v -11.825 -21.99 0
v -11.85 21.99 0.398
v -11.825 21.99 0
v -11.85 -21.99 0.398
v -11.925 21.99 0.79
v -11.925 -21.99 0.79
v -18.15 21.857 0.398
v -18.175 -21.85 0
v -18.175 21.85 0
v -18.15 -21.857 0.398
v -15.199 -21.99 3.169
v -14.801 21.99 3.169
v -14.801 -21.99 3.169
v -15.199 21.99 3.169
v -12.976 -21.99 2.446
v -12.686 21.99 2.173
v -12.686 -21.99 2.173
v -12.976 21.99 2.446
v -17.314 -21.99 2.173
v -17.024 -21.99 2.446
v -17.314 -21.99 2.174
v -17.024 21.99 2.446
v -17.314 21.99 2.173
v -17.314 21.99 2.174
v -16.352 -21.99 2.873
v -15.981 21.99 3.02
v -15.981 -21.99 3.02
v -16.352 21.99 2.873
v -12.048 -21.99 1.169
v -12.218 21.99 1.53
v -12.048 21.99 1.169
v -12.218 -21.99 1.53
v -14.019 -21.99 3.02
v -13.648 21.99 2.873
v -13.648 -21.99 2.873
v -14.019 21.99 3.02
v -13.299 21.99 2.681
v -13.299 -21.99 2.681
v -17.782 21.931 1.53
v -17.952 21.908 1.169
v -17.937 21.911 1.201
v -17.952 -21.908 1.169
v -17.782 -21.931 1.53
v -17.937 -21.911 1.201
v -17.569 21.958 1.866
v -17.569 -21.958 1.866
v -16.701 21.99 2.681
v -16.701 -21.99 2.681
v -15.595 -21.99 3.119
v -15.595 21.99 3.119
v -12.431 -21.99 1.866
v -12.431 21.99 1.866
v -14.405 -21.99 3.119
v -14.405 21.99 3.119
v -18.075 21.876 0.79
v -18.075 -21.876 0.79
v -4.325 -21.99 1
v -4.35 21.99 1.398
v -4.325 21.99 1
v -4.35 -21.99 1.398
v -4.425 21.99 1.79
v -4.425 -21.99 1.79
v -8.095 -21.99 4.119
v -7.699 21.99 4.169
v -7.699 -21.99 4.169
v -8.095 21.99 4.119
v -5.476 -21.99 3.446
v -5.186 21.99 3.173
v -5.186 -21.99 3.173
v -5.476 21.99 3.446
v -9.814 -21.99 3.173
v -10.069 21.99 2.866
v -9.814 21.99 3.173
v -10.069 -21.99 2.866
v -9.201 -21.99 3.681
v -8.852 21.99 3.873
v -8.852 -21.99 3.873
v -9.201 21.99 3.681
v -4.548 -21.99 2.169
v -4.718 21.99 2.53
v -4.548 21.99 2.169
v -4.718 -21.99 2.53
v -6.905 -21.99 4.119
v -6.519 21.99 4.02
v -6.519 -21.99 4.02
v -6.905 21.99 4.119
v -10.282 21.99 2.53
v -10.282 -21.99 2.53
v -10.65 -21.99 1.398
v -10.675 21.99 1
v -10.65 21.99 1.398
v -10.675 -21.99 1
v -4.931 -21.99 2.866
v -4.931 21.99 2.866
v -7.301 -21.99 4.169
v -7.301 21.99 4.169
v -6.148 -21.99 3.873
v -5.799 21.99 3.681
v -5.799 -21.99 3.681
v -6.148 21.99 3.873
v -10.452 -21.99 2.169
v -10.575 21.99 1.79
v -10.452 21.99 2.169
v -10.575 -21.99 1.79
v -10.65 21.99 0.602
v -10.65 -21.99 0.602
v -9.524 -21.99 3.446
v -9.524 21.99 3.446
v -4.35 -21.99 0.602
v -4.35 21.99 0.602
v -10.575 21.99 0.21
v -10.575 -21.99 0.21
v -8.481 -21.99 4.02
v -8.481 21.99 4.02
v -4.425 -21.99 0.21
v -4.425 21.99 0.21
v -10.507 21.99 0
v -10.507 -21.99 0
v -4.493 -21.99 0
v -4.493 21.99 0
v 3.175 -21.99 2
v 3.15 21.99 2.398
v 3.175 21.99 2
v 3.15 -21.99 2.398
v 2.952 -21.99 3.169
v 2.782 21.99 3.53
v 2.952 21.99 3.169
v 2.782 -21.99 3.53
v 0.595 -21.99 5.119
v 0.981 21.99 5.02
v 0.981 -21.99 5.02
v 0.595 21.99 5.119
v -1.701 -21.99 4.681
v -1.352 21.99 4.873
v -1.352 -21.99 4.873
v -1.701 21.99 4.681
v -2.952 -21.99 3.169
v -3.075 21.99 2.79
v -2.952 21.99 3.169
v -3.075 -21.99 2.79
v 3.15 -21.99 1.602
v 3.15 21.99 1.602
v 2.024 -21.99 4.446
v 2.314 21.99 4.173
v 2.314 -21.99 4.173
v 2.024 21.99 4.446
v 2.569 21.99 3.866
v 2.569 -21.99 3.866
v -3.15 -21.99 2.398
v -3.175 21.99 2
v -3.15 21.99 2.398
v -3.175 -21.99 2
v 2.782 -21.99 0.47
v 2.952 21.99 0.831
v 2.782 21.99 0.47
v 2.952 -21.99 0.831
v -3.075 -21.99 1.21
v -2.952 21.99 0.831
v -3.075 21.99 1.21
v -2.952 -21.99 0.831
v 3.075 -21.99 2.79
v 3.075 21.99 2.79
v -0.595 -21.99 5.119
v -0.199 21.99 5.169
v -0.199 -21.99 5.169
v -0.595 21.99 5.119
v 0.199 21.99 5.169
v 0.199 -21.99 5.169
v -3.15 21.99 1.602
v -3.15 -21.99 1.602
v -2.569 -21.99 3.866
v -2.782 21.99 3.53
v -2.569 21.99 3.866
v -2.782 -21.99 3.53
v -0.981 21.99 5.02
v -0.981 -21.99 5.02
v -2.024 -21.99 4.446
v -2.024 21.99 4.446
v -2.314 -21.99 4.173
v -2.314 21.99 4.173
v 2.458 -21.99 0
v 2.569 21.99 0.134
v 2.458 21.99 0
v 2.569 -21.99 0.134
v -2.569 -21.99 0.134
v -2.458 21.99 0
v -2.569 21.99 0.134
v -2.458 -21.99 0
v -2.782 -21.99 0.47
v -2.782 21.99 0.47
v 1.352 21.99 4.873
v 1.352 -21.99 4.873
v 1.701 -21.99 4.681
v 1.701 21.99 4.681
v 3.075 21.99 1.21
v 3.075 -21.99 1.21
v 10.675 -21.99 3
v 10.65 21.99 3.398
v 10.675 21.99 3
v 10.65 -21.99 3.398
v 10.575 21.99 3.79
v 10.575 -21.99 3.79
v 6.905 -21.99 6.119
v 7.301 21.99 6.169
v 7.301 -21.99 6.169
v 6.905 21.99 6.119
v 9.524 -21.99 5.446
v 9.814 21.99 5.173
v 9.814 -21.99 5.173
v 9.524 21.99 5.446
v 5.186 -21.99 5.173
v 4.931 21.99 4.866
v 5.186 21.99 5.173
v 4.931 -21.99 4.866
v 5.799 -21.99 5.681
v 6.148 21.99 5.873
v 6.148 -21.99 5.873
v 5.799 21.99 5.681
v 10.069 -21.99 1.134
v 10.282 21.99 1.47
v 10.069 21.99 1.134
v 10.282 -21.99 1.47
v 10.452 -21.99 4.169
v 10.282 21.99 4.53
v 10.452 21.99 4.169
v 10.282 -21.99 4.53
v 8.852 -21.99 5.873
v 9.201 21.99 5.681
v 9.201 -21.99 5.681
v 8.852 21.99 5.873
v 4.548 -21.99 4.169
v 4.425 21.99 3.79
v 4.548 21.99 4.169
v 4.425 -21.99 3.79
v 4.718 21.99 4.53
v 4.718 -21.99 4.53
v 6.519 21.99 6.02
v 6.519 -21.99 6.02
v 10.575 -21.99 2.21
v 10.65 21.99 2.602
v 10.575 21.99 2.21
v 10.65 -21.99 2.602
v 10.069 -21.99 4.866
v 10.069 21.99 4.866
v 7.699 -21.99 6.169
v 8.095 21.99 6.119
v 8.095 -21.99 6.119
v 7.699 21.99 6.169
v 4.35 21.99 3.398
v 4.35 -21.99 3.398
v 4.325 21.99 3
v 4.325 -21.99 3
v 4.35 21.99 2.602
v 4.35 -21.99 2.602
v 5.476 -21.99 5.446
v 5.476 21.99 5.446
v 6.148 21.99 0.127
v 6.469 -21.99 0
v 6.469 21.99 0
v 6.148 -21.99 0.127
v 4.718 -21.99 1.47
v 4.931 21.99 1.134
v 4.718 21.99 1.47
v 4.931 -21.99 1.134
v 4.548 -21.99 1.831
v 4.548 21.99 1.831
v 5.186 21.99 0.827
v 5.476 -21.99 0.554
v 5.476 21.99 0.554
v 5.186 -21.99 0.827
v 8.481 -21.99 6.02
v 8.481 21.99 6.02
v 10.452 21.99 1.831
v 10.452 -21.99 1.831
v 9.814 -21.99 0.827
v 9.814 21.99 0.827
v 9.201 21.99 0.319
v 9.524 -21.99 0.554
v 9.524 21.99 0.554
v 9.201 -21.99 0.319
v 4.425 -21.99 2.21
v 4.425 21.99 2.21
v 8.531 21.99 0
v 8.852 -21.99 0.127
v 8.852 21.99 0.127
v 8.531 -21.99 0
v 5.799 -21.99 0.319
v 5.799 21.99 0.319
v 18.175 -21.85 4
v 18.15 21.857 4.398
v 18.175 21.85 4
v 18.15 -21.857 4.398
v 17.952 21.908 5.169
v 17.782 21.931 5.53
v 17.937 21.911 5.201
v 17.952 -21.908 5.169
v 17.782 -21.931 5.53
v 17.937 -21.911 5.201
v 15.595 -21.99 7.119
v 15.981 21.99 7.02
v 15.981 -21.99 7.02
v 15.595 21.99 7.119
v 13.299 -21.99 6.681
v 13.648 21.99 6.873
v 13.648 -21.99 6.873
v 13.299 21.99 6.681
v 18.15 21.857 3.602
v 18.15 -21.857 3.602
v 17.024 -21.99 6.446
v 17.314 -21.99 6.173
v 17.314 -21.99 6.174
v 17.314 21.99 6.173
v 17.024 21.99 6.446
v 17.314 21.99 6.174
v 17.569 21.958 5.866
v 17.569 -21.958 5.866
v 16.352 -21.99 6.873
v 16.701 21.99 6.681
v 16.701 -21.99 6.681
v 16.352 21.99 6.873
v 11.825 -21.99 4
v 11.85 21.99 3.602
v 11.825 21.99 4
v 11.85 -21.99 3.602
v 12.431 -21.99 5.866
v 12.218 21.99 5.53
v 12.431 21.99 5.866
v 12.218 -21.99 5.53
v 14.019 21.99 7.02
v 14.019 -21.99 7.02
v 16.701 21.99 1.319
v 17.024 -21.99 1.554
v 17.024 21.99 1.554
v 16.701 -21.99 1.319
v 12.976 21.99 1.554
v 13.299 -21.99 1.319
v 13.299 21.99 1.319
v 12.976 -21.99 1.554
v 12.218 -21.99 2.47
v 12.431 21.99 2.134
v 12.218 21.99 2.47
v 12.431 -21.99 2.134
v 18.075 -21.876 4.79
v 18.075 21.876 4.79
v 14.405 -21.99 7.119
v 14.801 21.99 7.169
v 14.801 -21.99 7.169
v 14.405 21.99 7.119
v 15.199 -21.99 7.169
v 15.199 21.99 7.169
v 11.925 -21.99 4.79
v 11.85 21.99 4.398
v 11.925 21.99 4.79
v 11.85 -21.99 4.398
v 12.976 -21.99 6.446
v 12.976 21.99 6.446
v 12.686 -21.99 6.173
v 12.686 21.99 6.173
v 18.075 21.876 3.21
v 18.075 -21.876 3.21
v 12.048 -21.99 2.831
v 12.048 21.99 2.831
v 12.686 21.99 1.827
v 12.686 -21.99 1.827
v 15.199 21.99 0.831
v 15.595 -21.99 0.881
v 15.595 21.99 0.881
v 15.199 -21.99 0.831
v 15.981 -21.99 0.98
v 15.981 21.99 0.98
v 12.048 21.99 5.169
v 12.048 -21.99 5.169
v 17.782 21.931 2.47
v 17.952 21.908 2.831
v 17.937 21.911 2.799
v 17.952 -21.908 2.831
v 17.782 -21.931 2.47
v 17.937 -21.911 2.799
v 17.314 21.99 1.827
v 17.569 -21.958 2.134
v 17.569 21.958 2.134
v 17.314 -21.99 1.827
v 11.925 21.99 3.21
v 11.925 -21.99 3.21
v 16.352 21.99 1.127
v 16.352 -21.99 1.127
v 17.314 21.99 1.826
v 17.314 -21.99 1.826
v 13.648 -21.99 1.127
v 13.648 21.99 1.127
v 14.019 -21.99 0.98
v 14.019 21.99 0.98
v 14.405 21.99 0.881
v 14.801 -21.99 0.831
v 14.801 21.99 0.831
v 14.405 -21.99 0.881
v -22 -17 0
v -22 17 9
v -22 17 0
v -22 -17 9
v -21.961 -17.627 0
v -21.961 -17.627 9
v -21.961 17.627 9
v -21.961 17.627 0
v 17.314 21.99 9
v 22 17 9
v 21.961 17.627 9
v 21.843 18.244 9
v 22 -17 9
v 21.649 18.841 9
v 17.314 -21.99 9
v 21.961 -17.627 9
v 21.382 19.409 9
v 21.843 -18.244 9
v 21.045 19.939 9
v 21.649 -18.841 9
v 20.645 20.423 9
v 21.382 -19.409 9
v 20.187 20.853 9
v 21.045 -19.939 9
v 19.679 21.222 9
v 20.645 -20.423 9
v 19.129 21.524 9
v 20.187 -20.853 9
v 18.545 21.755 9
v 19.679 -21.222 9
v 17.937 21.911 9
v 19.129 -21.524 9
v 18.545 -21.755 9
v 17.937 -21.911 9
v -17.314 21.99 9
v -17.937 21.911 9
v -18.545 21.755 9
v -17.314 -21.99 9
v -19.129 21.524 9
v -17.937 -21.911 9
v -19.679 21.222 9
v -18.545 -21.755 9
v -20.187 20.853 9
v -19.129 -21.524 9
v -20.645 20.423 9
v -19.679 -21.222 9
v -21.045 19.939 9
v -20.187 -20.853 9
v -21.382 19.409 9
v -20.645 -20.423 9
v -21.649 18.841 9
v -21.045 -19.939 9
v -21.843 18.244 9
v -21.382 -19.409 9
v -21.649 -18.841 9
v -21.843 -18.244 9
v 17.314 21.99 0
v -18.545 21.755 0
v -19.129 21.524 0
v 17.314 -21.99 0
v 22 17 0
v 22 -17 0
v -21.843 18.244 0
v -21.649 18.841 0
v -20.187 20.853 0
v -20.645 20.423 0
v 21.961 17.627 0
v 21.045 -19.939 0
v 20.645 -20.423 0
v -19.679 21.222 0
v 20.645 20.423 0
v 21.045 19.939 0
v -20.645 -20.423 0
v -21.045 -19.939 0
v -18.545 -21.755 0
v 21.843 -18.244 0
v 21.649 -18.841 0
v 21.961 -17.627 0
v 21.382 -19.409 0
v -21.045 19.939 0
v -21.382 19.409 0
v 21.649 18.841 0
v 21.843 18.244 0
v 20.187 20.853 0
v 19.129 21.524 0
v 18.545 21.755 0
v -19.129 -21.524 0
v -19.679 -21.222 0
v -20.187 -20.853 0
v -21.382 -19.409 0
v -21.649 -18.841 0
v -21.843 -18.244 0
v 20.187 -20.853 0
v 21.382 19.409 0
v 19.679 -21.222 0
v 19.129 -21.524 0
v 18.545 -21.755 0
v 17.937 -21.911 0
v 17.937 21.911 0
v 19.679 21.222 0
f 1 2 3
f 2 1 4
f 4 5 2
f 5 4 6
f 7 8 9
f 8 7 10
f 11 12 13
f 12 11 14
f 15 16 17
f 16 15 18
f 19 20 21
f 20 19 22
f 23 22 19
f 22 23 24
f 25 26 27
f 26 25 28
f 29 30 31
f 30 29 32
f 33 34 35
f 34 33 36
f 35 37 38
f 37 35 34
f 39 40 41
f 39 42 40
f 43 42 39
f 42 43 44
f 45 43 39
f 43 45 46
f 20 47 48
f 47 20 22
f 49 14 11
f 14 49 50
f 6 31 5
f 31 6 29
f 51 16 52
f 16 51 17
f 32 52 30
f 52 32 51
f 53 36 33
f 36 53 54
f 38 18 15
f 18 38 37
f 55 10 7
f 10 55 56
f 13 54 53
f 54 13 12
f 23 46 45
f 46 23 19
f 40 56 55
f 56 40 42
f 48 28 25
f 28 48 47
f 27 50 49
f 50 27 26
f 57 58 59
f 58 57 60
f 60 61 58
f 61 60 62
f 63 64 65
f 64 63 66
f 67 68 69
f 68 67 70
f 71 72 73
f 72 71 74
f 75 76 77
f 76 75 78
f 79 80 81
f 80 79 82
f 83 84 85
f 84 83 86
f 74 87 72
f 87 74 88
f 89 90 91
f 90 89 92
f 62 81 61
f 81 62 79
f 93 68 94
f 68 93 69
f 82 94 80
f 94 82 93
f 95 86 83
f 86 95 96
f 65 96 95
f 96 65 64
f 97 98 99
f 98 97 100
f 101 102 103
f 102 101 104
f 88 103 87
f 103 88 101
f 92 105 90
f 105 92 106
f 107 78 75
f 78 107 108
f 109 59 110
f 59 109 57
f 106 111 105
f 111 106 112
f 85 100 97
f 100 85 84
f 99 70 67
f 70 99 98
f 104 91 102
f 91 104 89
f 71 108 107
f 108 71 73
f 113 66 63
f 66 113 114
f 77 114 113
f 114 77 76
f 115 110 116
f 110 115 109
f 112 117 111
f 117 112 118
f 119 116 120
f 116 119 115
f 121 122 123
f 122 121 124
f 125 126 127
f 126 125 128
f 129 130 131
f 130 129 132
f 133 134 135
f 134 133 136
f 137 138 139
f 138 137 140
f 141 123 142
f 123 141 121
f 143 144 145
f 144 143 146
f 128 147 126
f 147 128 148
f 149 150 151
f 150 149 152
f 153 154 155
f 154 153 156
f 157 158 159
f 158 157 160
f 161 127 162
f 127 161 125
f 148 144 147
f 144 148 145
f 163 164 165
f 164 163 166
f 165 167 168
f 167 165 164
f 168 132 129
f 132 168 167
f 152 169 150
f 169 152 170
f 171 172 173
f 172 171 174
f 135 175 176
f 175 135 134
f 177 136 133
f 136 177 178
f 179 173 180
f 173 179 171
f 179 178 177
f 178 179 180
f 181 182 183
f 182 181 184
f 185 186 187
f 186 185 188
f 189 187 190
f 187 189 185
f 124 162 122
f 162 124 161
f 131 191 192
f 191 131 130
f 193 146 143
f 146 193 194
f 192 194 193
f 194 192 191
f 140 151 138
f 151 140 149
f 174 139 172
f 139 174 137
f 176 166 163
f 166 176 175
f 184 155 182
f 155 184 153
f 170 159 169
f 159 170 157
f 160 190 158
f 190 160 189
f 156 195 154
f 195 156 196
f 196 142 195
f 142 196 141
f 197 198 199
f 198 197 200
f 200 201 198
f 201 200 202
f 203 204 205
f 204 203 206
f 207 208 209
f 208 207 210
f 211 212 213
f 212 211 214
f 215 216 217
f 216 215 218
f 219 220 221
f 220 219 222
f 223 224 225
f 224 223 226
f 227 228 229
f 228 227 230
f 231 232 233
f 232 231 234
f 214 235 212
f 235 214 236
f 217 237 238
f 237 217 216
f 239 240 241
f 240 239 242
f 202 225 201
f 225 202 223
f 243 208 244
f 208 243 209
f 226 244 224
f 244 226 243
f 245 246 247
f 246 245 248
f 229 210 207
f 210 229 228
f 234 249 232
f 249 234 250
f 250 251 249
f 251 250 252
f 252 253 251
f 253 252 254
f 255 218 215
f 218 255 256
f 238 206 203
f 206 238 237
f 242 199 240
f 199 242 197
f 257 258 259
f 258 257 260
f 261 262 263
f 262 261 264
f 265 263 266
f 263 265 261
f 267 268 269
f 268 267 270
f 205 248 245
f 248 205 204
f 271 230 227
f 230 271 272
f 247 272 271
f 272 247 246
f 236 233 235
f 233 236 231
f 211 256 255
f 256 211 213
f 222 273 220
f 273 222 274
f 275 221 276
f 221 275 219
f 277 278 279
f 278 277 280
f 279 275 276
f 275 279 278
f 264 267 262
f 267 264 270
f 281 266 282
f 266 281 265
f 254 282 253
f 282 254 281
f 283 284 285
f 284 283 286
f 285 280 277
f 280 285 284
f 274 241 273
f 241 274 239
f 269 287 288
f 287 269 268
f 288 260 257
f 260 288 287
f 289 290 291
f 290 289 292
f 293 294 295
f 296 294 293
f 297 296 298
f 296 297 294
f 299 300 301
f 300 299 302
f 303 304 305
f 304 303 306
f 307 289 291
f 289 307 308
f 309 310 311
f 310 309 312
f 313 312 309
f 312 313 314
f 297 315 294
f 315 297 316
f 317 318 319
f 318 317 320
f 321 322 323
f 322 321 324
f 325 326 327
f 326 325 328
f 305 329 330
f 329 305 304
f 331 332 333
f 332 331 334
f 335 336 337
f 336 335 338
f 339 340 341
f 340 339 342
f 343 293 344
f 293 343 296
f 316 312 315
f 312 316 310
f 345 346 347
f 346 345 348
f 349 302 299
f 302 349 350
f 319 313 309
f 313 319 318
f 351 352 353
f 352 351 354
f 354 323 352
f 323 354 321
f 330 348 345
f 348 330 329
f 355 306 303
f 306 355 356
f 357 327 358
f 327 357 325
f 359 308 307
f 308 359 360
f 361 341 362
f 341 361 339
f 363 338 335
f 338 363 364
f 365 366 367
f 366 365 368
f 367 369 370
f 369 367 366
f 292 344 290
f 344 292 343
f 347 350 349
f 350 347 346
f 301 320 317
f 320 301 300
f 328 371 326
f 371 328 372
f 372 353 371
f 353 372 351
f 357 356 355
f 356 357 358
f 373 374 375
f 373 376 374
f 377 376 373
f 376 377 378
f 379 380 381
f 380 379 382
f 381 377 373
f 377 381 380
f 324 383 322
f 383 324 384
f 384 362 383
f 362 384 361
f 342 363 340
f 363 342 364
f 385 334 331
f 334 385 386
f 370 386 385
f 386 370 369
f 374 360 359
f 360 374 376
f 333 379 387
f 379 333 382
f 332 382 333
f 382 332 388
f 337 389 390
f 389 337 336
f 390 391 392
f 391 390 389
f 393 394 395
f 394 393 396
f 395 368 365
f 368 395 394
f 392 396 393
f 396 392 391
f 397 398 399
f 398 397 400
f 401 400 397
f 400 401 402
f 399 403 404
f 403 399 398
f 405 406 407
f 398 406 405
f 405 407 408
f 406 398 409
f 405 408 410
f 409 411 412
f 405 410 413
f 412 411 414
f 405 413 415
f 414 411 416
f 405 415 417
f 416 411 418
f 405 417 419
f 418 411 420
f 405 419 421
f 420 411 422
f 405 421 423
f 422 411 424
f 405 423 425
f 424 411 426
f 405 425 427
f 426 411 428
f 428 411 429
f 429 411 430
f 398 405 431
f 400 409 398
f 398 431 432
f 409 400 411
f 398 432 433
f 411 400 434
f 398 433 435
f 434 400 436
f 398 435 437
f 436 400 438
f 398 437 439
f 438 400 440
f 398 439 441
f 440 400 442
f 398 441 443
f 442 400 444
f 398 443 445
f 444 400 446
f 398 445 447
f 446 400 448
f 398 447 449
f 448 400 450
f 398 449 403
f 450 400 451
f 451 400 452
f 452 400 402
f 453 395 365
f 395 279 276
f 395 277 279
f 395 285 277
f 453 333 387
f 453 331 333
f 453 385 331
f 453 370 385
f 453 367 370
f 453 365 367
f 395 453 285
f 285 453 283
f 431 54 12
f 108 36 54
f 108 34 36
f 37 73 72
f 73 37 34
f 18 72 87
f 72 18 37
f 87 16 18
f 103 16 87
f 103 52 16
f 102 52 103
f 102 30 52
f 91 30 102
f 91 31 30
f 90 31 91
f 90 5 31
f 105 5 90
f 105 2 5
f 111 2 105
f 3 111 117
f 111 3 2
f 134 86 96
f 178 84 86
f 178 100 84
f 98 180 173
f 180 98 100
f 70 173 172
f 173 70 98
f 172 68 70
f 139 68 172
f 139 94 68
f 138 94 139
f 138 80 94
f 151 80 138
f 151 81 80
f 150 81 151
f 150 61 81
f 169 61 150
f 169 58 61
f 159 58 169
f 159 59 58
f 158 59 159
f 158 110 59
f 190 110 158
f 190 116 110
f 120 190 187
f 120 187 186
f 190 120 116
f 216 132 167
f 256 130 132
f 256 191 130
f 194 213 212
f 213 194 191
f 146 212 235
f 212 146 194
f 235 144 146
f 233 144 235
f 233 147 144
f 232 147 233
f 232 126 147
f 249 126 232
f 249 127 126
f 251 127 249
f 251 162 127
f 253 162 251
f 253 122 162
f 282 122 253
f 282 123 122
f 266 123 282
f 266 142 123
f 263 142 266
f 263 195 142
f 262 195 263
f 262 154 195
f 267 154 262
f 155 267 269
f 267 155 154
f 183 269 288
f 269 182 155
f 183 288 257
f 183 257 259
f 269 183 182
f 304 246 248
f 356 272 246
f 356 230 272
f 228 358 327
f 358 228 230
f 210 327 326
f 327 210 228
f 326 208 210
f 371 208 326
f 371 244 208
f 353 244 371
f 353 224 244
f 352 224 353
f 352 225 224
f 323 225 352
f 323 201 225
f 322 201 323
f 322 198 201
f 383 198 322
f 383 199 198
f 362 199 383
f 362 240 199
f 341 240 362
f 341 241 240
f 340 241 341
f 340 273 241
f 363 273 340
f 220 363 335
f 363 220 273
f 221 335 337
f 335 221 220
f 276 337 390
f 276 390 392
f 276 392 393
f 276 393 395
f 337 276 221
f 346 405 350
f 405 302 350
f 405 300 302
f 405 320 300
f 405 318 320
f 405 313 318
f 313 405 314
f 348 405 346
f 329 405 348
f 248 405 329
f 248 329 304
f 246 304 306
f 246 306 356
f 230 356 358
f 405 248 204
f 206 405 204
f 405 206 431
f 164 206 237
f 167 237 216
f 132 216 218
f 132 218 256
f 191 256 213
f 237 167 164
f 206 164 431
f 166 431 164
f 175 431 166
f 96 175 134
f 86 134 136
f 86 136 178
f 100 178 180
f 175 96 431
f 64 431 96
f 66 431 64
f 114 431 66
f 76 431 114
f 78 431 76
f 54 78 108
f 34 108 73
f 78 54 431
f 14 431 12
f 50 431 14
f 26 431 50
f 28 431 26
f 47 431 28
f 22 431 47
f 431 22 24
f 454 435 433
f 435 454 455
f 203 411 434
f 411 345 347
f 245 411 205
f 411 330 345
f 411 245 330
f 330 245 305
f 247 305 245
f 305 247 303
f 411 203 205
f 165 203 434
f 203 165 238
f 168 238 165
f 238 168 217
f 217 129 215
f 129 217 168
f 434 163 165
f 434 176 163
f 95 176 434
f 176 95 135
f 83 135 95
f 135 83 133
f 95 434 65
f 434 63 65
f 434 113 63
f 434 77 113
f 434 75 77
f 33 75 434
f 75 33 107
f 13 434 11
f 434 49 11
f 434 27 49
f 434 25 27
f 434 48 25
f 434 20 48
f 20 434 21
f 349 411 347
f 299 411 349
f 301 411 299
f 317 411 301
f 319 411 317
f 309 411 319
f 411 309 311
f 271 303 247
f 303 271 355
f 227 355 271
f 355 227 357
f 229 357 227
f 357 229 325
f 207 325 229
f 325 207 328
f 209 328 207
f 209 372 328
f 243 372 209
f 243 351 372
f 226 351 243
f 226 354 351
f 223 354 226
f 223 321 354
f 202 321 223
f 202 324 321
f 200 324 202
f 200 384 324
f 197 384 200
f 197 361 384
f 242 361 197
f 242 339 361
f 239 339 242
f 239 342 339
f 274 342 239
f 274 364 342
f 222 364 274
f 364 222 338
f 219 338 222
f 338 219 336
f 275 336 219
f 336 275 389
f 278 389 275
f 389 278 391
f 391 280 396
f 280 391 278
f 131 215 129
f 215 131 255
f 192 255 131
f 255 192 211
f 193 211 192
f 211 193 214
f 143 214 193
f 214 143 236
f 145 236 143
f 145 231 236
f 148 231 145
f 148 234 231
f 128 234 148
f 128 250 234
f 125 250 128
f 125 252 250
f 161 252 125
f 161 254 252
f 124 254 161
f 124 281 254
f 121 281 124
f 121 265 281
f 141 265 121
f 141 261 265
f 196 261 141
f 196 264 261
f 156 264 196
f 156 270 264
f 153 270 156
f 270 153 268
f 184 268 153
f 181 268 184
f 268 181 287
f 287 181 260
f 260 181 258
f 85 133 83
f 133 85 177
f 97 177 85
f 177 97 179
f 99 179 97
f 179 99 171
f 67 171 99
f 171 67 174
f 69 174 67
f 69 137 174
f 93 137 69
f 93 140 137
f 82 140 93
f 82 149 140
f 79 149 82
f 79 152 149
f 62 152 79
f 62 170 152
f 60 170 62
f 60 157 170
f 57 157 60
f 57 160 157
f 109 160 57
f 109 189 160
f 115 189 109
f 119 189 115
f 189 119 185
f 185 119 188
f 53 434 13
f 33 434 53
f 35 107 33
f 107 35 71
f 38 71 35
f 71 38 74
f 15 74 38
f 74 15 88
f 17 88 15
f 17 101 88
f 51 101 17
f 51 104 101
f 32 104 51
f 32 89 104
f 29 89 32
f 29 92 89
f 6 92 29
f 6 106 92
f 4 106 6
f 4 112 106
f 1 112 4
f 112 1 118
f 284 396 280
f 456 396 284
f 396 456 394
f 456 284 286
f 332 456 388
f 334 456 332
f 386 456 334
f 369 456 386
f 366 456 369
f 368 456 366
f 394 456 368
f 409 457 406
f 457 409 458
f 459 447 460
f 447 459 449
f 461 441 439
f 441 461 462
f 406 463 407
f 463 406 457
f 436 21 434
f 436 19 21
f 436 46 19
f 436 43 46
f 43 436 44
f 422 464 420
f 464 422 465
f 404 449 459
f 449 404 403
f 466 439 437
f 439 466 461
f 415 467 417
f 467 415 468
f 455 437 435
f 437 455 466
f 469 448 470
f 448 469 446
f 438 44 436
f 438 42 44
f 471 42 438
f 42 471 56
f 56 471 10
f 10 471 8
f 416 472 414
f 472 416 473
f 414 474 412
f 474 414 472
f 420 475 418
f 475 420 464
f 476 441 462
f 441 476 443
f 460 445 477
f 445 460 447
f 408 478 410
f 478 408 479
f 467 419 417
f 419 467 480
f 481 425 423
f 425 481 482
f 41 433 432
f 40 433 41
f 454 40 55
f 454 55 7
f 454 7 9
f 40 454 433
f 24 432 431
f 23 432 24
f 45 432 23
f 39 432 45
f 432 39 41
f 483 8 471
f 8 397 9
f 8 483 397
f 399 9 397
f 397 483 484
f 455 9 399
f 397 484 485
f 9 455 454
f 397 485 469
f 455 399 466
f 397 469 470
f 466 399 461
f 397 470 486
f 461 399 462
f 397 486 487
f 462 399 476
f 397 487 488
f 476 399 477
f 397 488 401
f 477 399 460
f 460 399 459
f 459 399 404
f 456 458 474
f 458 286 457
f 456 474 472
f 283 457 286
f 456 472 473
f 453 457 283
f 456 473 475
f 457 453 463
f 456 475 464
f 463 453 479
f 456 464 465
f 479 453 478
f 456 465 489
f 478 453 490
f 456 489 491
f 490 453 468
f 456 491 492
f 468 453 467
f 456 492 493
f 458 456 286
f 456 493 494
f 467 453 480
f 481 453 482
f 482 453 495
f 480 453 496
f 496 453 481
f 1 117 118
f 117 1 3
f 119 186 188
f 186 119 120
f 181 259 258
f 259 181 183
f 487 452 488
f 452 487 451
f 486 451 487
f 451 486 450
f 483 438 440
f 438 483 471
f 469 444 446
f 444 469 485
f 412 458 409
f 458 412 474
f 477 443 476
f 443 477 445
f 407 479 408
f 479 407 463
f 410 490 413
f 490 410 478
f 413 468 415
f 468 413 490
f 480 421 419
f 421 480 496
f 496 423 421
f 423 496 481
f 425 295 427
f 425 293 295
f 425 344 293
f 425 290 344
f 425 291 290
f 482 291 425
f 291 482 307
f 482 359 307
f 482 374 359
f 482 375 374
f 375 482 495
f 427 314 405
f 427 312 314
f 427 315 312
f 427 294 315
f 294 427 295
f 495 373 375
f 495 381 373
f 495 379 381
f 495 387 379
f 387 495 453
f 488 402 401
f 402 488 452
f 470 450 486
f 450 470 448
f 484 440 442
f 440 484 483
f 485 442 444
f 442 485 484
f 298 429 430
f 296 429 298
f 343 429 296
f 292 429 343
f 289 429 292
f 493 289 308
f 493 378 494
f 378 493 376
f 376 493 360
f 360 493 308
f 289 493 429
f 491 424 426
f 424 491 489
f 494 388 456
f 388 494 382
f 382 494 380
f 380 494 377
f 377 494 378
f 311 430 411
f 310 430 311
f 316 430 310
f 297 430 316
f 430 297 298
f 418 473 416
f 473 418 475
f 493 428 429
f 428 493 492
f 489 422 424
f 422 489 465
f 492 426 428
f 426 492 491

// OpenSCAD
$fn = 50;


difference() {
	union() {
		hull() {
			translate(v = [-17.0000000000, 17.0000000000, 0]) {
				cylinder(h = 9, r = 5);
			}
			translate(v = [17.0000000000, 17.0000000000, 0]) {
				cylinder(h = 9, r = 5);
			}
			translate(v = [-17.0000000000, -17.0000000000, 0]) {
				cylinder(h = 9, r = 5);
			}
			translate(v = [17.0000000000, -17.0000000000, 0]) {
				cylinder(h = 9, r = 5);
			}
		}
	}
	union() {
		#translate(v = [-15.0000000000, 22.5000000000, 0.0000000000]) {
			rotate(a = [90, 0, 0]) {
				cylinder(h = 45, r = 3.1750000000);
			}
		}
		#translate(v = [-7.5000000000, 22.5000000000, 1.0000000000]) {
			rotate(a = [90, 0, 0]) {
				cylinder(h = 45, r = 3.1750000000);
			}
		}
		#translate(v = [0.0000000000, 22.5000000000, 2.0000000000]) {
			rotate(a = [90, 0, 0]) {
				cylinder(h = 45, r = 3.1750000000);
			}
		}
		#translate(v = [7.5000000000, 22.5000000000, 3.0000000000]) {
			rotate(a = [90, 0, 0]) {
				cylinder(h = 45, r = 3.1750000000);
			}
		}
		#translate(v = [15.0000000000, 22.5000000000, 4.0000000000]) {
			rotate(a = [90, 0, 0]) {
				cylinder(h = 45, r = 3.1750000000);
			}
		}
	}
}
